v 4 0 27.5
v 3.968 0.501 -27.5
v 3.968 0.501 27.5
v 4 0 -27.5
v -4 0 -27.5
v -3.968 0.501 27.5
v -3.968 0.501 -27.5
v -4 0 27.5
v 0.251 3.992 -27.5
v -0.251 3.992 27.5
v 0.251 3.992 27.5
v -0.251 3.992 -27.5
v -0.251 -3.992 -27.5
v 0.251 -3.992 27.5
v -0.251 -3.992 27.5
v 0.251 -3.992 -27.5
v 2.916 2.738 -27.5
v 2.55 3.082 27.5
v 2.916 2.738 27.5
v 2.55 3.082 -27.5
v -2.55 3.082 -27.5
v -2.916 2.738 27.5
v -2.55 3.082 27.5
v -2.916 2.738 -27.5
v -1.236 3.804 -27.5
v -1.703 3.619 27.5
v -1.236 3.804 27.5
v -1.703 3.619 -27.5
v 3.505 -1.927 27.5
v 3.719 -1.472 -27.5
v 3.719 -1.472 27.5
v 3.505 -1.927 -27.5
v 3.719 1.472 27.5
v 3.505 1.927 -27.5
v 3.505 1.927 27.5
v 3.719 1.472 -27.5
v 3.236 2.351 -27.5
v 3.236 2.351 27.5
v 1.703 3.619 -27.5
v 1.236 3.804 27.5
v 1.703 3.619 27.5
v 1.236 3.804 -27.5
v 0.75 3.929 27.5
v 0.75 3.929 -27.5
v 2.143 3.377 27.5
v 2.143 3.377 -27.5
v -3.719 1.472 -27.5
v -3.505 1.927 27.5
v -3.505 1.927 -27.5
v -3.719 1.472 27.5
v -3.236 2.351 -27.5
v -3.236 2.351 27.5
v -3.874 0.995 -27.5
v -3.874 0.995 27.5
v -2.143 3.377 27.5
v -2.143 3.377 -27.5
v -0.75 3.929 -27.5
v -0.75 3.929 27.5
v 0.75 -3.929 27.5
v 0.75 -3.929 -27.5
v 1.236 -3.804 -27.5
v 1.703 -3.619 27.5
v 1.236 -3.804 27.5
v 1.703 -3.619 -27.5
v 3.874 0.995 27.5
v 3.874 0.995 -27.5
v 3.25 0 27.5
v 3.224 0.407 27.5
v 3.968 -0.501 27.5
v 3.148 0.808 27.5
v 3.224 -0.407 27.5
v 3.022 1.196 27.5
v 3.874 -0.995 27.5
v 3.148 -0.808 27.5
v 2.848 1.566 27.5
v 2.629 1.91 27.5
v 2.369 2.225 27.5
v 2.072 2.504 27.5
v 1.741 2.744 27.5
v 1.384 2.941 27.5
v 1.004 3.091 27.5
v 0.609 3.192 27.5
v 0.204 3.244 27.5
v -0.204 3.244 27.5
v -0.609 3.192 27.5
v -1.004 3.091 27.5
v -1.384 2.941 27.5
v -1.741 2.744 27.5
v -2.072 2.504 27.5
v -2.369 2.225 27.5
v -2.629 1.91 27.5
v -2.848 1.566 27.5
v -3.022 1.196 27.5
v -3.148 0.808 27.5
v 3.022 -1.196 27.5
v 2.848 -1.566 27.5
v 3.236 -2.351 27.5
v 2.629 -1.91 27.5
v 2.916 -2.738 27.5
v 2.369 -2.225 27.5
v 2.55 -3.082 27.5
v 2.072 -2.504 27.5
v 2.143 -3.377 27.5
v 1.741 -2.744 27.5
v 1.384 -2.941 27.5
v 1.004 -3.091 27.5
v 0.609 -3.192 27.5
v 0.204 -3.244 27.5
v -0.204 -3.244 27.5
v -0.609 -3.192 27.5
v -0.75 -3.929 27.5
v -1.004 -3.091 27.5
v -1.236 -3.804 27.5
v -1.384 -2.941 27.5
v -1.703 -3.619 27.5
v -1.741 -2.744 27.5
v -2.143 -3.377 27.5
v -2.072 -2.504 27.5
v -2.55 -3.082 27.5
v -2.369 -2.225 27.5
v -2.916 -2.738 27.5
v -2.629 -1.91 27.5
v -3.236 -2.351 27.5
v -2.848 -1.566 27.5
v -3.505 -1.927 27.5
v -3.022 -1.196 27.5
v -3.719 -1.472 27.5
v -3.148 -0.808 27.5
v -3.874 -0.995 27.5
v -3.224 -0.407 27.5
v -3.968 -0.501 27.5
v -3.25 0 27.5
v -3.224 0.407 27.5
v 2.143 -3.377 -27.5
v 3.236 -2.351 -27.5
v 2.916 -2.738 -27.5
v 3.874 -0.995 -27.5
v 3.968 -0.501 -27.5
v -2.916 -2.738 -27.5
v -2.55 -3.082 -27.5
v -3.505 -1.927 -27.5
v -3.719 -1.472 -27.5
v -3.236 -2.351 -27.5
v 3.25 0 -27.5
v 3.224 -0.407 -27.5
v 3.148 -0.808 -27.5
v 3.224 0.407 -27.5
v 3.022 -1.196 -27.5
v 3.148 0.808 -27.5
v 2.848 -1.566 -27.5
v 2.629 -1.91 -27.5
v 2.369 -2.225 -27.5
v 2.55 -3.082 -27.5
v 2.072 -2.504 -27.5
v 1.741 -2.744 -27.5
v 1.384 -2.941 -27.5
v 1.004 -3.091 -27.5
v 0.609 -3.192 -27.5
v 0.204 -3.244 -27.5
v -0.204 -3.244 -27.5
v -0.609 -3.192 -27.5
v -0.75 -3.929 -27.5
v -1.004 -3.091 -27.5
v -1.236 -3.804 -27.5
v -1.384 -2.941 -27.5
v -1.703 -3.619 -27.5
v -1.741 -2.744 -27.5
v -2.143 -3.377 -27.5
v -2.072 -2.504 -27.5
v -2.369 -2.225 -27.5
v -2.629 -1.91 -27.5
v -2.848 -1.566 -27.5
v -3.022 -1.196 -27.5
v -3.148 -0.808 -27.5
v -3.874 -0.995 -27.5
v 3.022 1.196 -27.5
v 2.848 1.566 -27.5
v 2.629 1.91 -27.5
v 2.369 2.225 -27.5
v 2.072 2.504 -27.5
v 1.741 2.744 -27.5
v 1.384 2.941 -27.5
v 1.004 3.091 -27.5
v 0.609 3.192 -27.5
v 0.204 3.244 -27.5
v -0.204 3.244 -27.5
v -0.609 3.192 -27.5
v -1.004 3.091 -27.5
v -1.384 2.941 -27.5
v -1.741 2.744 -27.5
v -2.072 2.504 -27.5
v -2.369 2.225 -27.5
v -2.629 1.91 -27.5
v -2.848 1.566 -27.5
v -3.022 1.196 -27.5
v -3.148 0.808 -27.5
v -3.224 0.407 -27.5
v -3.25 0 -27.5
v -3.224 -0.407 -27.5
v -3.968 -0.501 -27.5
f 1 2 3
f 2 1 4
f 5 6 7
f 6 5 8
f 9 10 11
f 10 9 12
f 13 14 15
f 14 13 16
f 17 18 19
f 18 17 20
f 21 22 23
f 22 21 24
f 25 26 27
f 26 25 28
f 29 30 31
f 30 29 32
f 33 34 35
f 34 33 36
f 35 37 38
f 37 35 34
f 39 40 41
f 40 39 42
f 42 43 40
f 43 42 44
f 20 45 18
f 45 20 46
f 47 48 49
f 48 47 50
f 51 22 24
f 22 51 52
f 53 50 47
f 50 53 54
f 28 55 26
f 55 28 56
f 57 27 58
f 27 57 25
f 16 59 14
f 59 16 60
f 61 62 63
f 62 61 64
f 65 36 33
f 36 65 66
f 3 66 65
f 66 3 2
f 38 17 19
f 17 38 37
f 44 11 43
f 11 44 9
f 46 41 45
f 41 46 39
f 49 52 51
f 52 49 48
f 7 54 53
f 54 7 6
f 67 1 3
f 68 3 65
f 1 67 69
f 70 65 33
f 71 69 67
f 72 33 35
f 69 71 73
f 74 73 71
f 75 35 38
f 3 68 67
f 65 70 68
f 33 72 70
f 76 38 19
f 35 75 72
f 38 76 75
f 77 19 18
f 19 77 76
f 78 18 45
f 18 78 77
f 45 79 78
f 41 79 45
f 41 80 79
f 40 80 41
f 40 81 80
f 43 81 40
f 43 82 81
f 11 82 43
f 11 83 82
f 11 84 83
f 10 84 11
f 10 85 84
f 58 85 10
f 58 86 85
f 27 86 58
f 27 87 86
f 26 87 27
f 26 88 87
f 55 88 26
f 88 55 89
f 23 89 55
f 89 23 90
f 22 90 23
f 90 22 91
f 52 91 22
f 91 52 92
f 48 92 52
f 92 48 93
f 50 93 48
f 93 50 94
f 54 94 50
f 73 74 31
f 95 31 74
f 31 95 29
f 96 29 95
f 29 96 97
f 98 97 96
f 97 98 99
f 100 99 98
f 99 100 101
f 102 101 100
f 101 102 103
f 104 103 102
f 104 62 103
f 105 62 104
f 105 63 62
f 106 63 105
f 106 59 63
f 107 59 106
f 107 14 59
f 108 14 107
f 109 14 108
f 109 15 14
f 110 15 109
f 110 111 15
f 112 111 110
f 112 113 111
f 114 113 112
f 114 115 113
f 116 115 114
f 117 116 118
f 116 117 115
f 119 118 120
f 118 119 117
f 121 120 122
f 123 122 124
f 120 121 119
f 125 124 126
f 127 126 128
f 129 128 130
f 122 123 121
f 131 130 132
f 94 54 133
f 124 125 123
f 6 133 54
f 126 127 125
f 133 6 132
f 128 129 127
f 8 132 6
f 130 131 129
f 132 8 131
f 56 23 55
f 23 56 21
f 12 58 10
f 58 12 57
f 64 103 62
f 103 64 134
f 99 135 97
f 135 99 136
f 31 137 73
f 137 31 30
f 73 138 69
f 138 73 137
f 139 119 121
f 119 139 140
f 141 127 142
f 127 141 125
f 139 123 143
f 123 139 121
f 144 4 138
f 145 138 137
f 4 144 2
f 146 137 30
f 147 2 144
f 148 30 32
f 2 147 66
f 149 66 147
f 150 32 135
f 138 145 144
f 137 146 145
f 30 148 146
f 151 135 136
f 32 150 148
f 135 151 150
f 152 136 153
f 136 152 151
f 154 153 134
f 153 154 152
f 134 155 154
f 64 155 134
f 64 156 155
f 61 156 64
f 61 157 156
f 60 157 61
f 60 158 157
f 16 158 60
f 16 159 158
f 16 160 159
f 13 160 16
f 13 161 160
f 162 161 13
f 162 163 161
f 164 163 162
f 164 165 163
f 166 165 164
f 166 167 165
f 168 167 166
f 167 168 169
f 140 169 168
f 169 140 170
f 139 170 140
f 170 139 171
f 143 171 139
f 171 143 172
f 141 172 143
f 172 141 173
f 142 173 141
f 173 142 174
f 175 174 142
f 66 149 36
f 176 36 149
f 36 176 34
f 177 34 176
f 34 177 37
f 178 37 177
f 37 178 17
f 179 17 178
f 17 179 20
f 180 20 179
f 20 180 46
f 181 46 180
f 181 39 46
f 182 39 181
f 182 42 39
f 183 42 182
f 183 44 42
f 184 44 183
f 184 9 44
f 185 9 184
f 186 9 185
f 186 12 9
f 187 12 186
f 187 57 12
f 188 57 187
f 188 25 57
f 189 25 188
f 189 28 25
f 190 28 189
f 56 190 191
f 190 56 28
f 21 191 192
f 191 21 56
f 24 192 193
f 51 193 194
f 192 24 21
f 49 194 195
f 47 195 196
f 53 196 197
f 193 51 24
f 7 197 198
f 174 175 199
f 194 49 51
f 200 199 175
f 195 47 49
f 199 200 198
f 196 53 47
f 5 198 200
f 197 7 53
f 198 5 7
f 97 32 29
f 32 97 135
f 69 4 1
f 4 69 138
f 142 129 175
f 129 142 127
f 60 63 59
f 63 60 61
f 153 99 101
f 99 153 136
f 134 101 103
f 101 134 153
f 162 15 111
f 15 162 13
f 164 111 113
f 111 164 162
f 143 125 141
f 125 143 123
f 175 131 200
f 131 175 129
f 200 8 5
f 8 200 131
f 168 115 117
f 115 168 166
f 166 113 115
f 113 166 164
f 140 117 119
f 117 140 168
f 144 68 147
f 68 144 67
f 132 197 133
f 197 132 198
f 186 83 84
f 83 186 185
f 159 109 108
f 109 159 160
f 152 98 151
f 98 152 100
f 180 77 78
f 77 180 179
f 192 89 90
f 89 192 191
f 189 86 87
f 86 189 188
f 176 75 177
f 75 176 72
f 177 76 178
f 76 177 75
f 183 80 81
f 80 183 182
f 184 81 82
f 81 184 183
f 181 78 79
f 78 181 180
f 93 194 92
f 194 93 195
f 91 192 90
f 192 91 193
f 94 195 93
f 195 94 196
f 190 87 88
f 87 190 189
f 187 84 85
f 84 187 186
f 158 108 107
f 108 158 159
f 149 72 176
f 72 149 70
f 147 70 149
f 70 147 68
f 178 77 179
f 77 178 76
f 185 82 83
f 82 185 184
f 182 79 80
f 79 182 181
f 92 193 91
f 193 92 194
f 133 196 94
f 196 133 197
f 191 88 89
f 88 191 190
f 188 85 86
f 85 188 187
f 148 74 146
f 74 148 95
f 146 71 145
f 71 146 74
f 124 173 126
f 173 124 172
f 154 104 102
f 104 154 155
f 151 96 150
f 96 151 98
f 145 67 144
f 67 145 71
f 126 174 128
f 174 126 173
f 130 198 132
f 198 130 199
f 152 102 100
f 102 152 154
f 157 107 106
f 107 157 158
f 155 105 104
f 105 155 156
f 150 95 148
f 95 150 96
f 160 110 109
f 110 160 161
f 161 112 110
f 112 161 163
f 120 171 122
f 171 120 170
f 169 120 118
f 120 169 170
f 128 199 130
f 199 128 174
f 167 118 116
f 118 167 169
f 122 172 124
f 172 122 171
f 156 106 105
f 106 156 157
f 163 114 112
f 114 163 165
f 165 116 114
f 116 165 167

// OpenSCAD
$fn = 50;


difference() {
	union() {
		translate(v = [0, 0, -27.5000000000]) {
			cylinder(h = 55, r = 4.0000000000);
		}
	}
	union() {
		translate(v = [0, 0, -100.0000000000]) {
			cylinder(h = 200, r = 3.2500000000);
		}
	}
}
